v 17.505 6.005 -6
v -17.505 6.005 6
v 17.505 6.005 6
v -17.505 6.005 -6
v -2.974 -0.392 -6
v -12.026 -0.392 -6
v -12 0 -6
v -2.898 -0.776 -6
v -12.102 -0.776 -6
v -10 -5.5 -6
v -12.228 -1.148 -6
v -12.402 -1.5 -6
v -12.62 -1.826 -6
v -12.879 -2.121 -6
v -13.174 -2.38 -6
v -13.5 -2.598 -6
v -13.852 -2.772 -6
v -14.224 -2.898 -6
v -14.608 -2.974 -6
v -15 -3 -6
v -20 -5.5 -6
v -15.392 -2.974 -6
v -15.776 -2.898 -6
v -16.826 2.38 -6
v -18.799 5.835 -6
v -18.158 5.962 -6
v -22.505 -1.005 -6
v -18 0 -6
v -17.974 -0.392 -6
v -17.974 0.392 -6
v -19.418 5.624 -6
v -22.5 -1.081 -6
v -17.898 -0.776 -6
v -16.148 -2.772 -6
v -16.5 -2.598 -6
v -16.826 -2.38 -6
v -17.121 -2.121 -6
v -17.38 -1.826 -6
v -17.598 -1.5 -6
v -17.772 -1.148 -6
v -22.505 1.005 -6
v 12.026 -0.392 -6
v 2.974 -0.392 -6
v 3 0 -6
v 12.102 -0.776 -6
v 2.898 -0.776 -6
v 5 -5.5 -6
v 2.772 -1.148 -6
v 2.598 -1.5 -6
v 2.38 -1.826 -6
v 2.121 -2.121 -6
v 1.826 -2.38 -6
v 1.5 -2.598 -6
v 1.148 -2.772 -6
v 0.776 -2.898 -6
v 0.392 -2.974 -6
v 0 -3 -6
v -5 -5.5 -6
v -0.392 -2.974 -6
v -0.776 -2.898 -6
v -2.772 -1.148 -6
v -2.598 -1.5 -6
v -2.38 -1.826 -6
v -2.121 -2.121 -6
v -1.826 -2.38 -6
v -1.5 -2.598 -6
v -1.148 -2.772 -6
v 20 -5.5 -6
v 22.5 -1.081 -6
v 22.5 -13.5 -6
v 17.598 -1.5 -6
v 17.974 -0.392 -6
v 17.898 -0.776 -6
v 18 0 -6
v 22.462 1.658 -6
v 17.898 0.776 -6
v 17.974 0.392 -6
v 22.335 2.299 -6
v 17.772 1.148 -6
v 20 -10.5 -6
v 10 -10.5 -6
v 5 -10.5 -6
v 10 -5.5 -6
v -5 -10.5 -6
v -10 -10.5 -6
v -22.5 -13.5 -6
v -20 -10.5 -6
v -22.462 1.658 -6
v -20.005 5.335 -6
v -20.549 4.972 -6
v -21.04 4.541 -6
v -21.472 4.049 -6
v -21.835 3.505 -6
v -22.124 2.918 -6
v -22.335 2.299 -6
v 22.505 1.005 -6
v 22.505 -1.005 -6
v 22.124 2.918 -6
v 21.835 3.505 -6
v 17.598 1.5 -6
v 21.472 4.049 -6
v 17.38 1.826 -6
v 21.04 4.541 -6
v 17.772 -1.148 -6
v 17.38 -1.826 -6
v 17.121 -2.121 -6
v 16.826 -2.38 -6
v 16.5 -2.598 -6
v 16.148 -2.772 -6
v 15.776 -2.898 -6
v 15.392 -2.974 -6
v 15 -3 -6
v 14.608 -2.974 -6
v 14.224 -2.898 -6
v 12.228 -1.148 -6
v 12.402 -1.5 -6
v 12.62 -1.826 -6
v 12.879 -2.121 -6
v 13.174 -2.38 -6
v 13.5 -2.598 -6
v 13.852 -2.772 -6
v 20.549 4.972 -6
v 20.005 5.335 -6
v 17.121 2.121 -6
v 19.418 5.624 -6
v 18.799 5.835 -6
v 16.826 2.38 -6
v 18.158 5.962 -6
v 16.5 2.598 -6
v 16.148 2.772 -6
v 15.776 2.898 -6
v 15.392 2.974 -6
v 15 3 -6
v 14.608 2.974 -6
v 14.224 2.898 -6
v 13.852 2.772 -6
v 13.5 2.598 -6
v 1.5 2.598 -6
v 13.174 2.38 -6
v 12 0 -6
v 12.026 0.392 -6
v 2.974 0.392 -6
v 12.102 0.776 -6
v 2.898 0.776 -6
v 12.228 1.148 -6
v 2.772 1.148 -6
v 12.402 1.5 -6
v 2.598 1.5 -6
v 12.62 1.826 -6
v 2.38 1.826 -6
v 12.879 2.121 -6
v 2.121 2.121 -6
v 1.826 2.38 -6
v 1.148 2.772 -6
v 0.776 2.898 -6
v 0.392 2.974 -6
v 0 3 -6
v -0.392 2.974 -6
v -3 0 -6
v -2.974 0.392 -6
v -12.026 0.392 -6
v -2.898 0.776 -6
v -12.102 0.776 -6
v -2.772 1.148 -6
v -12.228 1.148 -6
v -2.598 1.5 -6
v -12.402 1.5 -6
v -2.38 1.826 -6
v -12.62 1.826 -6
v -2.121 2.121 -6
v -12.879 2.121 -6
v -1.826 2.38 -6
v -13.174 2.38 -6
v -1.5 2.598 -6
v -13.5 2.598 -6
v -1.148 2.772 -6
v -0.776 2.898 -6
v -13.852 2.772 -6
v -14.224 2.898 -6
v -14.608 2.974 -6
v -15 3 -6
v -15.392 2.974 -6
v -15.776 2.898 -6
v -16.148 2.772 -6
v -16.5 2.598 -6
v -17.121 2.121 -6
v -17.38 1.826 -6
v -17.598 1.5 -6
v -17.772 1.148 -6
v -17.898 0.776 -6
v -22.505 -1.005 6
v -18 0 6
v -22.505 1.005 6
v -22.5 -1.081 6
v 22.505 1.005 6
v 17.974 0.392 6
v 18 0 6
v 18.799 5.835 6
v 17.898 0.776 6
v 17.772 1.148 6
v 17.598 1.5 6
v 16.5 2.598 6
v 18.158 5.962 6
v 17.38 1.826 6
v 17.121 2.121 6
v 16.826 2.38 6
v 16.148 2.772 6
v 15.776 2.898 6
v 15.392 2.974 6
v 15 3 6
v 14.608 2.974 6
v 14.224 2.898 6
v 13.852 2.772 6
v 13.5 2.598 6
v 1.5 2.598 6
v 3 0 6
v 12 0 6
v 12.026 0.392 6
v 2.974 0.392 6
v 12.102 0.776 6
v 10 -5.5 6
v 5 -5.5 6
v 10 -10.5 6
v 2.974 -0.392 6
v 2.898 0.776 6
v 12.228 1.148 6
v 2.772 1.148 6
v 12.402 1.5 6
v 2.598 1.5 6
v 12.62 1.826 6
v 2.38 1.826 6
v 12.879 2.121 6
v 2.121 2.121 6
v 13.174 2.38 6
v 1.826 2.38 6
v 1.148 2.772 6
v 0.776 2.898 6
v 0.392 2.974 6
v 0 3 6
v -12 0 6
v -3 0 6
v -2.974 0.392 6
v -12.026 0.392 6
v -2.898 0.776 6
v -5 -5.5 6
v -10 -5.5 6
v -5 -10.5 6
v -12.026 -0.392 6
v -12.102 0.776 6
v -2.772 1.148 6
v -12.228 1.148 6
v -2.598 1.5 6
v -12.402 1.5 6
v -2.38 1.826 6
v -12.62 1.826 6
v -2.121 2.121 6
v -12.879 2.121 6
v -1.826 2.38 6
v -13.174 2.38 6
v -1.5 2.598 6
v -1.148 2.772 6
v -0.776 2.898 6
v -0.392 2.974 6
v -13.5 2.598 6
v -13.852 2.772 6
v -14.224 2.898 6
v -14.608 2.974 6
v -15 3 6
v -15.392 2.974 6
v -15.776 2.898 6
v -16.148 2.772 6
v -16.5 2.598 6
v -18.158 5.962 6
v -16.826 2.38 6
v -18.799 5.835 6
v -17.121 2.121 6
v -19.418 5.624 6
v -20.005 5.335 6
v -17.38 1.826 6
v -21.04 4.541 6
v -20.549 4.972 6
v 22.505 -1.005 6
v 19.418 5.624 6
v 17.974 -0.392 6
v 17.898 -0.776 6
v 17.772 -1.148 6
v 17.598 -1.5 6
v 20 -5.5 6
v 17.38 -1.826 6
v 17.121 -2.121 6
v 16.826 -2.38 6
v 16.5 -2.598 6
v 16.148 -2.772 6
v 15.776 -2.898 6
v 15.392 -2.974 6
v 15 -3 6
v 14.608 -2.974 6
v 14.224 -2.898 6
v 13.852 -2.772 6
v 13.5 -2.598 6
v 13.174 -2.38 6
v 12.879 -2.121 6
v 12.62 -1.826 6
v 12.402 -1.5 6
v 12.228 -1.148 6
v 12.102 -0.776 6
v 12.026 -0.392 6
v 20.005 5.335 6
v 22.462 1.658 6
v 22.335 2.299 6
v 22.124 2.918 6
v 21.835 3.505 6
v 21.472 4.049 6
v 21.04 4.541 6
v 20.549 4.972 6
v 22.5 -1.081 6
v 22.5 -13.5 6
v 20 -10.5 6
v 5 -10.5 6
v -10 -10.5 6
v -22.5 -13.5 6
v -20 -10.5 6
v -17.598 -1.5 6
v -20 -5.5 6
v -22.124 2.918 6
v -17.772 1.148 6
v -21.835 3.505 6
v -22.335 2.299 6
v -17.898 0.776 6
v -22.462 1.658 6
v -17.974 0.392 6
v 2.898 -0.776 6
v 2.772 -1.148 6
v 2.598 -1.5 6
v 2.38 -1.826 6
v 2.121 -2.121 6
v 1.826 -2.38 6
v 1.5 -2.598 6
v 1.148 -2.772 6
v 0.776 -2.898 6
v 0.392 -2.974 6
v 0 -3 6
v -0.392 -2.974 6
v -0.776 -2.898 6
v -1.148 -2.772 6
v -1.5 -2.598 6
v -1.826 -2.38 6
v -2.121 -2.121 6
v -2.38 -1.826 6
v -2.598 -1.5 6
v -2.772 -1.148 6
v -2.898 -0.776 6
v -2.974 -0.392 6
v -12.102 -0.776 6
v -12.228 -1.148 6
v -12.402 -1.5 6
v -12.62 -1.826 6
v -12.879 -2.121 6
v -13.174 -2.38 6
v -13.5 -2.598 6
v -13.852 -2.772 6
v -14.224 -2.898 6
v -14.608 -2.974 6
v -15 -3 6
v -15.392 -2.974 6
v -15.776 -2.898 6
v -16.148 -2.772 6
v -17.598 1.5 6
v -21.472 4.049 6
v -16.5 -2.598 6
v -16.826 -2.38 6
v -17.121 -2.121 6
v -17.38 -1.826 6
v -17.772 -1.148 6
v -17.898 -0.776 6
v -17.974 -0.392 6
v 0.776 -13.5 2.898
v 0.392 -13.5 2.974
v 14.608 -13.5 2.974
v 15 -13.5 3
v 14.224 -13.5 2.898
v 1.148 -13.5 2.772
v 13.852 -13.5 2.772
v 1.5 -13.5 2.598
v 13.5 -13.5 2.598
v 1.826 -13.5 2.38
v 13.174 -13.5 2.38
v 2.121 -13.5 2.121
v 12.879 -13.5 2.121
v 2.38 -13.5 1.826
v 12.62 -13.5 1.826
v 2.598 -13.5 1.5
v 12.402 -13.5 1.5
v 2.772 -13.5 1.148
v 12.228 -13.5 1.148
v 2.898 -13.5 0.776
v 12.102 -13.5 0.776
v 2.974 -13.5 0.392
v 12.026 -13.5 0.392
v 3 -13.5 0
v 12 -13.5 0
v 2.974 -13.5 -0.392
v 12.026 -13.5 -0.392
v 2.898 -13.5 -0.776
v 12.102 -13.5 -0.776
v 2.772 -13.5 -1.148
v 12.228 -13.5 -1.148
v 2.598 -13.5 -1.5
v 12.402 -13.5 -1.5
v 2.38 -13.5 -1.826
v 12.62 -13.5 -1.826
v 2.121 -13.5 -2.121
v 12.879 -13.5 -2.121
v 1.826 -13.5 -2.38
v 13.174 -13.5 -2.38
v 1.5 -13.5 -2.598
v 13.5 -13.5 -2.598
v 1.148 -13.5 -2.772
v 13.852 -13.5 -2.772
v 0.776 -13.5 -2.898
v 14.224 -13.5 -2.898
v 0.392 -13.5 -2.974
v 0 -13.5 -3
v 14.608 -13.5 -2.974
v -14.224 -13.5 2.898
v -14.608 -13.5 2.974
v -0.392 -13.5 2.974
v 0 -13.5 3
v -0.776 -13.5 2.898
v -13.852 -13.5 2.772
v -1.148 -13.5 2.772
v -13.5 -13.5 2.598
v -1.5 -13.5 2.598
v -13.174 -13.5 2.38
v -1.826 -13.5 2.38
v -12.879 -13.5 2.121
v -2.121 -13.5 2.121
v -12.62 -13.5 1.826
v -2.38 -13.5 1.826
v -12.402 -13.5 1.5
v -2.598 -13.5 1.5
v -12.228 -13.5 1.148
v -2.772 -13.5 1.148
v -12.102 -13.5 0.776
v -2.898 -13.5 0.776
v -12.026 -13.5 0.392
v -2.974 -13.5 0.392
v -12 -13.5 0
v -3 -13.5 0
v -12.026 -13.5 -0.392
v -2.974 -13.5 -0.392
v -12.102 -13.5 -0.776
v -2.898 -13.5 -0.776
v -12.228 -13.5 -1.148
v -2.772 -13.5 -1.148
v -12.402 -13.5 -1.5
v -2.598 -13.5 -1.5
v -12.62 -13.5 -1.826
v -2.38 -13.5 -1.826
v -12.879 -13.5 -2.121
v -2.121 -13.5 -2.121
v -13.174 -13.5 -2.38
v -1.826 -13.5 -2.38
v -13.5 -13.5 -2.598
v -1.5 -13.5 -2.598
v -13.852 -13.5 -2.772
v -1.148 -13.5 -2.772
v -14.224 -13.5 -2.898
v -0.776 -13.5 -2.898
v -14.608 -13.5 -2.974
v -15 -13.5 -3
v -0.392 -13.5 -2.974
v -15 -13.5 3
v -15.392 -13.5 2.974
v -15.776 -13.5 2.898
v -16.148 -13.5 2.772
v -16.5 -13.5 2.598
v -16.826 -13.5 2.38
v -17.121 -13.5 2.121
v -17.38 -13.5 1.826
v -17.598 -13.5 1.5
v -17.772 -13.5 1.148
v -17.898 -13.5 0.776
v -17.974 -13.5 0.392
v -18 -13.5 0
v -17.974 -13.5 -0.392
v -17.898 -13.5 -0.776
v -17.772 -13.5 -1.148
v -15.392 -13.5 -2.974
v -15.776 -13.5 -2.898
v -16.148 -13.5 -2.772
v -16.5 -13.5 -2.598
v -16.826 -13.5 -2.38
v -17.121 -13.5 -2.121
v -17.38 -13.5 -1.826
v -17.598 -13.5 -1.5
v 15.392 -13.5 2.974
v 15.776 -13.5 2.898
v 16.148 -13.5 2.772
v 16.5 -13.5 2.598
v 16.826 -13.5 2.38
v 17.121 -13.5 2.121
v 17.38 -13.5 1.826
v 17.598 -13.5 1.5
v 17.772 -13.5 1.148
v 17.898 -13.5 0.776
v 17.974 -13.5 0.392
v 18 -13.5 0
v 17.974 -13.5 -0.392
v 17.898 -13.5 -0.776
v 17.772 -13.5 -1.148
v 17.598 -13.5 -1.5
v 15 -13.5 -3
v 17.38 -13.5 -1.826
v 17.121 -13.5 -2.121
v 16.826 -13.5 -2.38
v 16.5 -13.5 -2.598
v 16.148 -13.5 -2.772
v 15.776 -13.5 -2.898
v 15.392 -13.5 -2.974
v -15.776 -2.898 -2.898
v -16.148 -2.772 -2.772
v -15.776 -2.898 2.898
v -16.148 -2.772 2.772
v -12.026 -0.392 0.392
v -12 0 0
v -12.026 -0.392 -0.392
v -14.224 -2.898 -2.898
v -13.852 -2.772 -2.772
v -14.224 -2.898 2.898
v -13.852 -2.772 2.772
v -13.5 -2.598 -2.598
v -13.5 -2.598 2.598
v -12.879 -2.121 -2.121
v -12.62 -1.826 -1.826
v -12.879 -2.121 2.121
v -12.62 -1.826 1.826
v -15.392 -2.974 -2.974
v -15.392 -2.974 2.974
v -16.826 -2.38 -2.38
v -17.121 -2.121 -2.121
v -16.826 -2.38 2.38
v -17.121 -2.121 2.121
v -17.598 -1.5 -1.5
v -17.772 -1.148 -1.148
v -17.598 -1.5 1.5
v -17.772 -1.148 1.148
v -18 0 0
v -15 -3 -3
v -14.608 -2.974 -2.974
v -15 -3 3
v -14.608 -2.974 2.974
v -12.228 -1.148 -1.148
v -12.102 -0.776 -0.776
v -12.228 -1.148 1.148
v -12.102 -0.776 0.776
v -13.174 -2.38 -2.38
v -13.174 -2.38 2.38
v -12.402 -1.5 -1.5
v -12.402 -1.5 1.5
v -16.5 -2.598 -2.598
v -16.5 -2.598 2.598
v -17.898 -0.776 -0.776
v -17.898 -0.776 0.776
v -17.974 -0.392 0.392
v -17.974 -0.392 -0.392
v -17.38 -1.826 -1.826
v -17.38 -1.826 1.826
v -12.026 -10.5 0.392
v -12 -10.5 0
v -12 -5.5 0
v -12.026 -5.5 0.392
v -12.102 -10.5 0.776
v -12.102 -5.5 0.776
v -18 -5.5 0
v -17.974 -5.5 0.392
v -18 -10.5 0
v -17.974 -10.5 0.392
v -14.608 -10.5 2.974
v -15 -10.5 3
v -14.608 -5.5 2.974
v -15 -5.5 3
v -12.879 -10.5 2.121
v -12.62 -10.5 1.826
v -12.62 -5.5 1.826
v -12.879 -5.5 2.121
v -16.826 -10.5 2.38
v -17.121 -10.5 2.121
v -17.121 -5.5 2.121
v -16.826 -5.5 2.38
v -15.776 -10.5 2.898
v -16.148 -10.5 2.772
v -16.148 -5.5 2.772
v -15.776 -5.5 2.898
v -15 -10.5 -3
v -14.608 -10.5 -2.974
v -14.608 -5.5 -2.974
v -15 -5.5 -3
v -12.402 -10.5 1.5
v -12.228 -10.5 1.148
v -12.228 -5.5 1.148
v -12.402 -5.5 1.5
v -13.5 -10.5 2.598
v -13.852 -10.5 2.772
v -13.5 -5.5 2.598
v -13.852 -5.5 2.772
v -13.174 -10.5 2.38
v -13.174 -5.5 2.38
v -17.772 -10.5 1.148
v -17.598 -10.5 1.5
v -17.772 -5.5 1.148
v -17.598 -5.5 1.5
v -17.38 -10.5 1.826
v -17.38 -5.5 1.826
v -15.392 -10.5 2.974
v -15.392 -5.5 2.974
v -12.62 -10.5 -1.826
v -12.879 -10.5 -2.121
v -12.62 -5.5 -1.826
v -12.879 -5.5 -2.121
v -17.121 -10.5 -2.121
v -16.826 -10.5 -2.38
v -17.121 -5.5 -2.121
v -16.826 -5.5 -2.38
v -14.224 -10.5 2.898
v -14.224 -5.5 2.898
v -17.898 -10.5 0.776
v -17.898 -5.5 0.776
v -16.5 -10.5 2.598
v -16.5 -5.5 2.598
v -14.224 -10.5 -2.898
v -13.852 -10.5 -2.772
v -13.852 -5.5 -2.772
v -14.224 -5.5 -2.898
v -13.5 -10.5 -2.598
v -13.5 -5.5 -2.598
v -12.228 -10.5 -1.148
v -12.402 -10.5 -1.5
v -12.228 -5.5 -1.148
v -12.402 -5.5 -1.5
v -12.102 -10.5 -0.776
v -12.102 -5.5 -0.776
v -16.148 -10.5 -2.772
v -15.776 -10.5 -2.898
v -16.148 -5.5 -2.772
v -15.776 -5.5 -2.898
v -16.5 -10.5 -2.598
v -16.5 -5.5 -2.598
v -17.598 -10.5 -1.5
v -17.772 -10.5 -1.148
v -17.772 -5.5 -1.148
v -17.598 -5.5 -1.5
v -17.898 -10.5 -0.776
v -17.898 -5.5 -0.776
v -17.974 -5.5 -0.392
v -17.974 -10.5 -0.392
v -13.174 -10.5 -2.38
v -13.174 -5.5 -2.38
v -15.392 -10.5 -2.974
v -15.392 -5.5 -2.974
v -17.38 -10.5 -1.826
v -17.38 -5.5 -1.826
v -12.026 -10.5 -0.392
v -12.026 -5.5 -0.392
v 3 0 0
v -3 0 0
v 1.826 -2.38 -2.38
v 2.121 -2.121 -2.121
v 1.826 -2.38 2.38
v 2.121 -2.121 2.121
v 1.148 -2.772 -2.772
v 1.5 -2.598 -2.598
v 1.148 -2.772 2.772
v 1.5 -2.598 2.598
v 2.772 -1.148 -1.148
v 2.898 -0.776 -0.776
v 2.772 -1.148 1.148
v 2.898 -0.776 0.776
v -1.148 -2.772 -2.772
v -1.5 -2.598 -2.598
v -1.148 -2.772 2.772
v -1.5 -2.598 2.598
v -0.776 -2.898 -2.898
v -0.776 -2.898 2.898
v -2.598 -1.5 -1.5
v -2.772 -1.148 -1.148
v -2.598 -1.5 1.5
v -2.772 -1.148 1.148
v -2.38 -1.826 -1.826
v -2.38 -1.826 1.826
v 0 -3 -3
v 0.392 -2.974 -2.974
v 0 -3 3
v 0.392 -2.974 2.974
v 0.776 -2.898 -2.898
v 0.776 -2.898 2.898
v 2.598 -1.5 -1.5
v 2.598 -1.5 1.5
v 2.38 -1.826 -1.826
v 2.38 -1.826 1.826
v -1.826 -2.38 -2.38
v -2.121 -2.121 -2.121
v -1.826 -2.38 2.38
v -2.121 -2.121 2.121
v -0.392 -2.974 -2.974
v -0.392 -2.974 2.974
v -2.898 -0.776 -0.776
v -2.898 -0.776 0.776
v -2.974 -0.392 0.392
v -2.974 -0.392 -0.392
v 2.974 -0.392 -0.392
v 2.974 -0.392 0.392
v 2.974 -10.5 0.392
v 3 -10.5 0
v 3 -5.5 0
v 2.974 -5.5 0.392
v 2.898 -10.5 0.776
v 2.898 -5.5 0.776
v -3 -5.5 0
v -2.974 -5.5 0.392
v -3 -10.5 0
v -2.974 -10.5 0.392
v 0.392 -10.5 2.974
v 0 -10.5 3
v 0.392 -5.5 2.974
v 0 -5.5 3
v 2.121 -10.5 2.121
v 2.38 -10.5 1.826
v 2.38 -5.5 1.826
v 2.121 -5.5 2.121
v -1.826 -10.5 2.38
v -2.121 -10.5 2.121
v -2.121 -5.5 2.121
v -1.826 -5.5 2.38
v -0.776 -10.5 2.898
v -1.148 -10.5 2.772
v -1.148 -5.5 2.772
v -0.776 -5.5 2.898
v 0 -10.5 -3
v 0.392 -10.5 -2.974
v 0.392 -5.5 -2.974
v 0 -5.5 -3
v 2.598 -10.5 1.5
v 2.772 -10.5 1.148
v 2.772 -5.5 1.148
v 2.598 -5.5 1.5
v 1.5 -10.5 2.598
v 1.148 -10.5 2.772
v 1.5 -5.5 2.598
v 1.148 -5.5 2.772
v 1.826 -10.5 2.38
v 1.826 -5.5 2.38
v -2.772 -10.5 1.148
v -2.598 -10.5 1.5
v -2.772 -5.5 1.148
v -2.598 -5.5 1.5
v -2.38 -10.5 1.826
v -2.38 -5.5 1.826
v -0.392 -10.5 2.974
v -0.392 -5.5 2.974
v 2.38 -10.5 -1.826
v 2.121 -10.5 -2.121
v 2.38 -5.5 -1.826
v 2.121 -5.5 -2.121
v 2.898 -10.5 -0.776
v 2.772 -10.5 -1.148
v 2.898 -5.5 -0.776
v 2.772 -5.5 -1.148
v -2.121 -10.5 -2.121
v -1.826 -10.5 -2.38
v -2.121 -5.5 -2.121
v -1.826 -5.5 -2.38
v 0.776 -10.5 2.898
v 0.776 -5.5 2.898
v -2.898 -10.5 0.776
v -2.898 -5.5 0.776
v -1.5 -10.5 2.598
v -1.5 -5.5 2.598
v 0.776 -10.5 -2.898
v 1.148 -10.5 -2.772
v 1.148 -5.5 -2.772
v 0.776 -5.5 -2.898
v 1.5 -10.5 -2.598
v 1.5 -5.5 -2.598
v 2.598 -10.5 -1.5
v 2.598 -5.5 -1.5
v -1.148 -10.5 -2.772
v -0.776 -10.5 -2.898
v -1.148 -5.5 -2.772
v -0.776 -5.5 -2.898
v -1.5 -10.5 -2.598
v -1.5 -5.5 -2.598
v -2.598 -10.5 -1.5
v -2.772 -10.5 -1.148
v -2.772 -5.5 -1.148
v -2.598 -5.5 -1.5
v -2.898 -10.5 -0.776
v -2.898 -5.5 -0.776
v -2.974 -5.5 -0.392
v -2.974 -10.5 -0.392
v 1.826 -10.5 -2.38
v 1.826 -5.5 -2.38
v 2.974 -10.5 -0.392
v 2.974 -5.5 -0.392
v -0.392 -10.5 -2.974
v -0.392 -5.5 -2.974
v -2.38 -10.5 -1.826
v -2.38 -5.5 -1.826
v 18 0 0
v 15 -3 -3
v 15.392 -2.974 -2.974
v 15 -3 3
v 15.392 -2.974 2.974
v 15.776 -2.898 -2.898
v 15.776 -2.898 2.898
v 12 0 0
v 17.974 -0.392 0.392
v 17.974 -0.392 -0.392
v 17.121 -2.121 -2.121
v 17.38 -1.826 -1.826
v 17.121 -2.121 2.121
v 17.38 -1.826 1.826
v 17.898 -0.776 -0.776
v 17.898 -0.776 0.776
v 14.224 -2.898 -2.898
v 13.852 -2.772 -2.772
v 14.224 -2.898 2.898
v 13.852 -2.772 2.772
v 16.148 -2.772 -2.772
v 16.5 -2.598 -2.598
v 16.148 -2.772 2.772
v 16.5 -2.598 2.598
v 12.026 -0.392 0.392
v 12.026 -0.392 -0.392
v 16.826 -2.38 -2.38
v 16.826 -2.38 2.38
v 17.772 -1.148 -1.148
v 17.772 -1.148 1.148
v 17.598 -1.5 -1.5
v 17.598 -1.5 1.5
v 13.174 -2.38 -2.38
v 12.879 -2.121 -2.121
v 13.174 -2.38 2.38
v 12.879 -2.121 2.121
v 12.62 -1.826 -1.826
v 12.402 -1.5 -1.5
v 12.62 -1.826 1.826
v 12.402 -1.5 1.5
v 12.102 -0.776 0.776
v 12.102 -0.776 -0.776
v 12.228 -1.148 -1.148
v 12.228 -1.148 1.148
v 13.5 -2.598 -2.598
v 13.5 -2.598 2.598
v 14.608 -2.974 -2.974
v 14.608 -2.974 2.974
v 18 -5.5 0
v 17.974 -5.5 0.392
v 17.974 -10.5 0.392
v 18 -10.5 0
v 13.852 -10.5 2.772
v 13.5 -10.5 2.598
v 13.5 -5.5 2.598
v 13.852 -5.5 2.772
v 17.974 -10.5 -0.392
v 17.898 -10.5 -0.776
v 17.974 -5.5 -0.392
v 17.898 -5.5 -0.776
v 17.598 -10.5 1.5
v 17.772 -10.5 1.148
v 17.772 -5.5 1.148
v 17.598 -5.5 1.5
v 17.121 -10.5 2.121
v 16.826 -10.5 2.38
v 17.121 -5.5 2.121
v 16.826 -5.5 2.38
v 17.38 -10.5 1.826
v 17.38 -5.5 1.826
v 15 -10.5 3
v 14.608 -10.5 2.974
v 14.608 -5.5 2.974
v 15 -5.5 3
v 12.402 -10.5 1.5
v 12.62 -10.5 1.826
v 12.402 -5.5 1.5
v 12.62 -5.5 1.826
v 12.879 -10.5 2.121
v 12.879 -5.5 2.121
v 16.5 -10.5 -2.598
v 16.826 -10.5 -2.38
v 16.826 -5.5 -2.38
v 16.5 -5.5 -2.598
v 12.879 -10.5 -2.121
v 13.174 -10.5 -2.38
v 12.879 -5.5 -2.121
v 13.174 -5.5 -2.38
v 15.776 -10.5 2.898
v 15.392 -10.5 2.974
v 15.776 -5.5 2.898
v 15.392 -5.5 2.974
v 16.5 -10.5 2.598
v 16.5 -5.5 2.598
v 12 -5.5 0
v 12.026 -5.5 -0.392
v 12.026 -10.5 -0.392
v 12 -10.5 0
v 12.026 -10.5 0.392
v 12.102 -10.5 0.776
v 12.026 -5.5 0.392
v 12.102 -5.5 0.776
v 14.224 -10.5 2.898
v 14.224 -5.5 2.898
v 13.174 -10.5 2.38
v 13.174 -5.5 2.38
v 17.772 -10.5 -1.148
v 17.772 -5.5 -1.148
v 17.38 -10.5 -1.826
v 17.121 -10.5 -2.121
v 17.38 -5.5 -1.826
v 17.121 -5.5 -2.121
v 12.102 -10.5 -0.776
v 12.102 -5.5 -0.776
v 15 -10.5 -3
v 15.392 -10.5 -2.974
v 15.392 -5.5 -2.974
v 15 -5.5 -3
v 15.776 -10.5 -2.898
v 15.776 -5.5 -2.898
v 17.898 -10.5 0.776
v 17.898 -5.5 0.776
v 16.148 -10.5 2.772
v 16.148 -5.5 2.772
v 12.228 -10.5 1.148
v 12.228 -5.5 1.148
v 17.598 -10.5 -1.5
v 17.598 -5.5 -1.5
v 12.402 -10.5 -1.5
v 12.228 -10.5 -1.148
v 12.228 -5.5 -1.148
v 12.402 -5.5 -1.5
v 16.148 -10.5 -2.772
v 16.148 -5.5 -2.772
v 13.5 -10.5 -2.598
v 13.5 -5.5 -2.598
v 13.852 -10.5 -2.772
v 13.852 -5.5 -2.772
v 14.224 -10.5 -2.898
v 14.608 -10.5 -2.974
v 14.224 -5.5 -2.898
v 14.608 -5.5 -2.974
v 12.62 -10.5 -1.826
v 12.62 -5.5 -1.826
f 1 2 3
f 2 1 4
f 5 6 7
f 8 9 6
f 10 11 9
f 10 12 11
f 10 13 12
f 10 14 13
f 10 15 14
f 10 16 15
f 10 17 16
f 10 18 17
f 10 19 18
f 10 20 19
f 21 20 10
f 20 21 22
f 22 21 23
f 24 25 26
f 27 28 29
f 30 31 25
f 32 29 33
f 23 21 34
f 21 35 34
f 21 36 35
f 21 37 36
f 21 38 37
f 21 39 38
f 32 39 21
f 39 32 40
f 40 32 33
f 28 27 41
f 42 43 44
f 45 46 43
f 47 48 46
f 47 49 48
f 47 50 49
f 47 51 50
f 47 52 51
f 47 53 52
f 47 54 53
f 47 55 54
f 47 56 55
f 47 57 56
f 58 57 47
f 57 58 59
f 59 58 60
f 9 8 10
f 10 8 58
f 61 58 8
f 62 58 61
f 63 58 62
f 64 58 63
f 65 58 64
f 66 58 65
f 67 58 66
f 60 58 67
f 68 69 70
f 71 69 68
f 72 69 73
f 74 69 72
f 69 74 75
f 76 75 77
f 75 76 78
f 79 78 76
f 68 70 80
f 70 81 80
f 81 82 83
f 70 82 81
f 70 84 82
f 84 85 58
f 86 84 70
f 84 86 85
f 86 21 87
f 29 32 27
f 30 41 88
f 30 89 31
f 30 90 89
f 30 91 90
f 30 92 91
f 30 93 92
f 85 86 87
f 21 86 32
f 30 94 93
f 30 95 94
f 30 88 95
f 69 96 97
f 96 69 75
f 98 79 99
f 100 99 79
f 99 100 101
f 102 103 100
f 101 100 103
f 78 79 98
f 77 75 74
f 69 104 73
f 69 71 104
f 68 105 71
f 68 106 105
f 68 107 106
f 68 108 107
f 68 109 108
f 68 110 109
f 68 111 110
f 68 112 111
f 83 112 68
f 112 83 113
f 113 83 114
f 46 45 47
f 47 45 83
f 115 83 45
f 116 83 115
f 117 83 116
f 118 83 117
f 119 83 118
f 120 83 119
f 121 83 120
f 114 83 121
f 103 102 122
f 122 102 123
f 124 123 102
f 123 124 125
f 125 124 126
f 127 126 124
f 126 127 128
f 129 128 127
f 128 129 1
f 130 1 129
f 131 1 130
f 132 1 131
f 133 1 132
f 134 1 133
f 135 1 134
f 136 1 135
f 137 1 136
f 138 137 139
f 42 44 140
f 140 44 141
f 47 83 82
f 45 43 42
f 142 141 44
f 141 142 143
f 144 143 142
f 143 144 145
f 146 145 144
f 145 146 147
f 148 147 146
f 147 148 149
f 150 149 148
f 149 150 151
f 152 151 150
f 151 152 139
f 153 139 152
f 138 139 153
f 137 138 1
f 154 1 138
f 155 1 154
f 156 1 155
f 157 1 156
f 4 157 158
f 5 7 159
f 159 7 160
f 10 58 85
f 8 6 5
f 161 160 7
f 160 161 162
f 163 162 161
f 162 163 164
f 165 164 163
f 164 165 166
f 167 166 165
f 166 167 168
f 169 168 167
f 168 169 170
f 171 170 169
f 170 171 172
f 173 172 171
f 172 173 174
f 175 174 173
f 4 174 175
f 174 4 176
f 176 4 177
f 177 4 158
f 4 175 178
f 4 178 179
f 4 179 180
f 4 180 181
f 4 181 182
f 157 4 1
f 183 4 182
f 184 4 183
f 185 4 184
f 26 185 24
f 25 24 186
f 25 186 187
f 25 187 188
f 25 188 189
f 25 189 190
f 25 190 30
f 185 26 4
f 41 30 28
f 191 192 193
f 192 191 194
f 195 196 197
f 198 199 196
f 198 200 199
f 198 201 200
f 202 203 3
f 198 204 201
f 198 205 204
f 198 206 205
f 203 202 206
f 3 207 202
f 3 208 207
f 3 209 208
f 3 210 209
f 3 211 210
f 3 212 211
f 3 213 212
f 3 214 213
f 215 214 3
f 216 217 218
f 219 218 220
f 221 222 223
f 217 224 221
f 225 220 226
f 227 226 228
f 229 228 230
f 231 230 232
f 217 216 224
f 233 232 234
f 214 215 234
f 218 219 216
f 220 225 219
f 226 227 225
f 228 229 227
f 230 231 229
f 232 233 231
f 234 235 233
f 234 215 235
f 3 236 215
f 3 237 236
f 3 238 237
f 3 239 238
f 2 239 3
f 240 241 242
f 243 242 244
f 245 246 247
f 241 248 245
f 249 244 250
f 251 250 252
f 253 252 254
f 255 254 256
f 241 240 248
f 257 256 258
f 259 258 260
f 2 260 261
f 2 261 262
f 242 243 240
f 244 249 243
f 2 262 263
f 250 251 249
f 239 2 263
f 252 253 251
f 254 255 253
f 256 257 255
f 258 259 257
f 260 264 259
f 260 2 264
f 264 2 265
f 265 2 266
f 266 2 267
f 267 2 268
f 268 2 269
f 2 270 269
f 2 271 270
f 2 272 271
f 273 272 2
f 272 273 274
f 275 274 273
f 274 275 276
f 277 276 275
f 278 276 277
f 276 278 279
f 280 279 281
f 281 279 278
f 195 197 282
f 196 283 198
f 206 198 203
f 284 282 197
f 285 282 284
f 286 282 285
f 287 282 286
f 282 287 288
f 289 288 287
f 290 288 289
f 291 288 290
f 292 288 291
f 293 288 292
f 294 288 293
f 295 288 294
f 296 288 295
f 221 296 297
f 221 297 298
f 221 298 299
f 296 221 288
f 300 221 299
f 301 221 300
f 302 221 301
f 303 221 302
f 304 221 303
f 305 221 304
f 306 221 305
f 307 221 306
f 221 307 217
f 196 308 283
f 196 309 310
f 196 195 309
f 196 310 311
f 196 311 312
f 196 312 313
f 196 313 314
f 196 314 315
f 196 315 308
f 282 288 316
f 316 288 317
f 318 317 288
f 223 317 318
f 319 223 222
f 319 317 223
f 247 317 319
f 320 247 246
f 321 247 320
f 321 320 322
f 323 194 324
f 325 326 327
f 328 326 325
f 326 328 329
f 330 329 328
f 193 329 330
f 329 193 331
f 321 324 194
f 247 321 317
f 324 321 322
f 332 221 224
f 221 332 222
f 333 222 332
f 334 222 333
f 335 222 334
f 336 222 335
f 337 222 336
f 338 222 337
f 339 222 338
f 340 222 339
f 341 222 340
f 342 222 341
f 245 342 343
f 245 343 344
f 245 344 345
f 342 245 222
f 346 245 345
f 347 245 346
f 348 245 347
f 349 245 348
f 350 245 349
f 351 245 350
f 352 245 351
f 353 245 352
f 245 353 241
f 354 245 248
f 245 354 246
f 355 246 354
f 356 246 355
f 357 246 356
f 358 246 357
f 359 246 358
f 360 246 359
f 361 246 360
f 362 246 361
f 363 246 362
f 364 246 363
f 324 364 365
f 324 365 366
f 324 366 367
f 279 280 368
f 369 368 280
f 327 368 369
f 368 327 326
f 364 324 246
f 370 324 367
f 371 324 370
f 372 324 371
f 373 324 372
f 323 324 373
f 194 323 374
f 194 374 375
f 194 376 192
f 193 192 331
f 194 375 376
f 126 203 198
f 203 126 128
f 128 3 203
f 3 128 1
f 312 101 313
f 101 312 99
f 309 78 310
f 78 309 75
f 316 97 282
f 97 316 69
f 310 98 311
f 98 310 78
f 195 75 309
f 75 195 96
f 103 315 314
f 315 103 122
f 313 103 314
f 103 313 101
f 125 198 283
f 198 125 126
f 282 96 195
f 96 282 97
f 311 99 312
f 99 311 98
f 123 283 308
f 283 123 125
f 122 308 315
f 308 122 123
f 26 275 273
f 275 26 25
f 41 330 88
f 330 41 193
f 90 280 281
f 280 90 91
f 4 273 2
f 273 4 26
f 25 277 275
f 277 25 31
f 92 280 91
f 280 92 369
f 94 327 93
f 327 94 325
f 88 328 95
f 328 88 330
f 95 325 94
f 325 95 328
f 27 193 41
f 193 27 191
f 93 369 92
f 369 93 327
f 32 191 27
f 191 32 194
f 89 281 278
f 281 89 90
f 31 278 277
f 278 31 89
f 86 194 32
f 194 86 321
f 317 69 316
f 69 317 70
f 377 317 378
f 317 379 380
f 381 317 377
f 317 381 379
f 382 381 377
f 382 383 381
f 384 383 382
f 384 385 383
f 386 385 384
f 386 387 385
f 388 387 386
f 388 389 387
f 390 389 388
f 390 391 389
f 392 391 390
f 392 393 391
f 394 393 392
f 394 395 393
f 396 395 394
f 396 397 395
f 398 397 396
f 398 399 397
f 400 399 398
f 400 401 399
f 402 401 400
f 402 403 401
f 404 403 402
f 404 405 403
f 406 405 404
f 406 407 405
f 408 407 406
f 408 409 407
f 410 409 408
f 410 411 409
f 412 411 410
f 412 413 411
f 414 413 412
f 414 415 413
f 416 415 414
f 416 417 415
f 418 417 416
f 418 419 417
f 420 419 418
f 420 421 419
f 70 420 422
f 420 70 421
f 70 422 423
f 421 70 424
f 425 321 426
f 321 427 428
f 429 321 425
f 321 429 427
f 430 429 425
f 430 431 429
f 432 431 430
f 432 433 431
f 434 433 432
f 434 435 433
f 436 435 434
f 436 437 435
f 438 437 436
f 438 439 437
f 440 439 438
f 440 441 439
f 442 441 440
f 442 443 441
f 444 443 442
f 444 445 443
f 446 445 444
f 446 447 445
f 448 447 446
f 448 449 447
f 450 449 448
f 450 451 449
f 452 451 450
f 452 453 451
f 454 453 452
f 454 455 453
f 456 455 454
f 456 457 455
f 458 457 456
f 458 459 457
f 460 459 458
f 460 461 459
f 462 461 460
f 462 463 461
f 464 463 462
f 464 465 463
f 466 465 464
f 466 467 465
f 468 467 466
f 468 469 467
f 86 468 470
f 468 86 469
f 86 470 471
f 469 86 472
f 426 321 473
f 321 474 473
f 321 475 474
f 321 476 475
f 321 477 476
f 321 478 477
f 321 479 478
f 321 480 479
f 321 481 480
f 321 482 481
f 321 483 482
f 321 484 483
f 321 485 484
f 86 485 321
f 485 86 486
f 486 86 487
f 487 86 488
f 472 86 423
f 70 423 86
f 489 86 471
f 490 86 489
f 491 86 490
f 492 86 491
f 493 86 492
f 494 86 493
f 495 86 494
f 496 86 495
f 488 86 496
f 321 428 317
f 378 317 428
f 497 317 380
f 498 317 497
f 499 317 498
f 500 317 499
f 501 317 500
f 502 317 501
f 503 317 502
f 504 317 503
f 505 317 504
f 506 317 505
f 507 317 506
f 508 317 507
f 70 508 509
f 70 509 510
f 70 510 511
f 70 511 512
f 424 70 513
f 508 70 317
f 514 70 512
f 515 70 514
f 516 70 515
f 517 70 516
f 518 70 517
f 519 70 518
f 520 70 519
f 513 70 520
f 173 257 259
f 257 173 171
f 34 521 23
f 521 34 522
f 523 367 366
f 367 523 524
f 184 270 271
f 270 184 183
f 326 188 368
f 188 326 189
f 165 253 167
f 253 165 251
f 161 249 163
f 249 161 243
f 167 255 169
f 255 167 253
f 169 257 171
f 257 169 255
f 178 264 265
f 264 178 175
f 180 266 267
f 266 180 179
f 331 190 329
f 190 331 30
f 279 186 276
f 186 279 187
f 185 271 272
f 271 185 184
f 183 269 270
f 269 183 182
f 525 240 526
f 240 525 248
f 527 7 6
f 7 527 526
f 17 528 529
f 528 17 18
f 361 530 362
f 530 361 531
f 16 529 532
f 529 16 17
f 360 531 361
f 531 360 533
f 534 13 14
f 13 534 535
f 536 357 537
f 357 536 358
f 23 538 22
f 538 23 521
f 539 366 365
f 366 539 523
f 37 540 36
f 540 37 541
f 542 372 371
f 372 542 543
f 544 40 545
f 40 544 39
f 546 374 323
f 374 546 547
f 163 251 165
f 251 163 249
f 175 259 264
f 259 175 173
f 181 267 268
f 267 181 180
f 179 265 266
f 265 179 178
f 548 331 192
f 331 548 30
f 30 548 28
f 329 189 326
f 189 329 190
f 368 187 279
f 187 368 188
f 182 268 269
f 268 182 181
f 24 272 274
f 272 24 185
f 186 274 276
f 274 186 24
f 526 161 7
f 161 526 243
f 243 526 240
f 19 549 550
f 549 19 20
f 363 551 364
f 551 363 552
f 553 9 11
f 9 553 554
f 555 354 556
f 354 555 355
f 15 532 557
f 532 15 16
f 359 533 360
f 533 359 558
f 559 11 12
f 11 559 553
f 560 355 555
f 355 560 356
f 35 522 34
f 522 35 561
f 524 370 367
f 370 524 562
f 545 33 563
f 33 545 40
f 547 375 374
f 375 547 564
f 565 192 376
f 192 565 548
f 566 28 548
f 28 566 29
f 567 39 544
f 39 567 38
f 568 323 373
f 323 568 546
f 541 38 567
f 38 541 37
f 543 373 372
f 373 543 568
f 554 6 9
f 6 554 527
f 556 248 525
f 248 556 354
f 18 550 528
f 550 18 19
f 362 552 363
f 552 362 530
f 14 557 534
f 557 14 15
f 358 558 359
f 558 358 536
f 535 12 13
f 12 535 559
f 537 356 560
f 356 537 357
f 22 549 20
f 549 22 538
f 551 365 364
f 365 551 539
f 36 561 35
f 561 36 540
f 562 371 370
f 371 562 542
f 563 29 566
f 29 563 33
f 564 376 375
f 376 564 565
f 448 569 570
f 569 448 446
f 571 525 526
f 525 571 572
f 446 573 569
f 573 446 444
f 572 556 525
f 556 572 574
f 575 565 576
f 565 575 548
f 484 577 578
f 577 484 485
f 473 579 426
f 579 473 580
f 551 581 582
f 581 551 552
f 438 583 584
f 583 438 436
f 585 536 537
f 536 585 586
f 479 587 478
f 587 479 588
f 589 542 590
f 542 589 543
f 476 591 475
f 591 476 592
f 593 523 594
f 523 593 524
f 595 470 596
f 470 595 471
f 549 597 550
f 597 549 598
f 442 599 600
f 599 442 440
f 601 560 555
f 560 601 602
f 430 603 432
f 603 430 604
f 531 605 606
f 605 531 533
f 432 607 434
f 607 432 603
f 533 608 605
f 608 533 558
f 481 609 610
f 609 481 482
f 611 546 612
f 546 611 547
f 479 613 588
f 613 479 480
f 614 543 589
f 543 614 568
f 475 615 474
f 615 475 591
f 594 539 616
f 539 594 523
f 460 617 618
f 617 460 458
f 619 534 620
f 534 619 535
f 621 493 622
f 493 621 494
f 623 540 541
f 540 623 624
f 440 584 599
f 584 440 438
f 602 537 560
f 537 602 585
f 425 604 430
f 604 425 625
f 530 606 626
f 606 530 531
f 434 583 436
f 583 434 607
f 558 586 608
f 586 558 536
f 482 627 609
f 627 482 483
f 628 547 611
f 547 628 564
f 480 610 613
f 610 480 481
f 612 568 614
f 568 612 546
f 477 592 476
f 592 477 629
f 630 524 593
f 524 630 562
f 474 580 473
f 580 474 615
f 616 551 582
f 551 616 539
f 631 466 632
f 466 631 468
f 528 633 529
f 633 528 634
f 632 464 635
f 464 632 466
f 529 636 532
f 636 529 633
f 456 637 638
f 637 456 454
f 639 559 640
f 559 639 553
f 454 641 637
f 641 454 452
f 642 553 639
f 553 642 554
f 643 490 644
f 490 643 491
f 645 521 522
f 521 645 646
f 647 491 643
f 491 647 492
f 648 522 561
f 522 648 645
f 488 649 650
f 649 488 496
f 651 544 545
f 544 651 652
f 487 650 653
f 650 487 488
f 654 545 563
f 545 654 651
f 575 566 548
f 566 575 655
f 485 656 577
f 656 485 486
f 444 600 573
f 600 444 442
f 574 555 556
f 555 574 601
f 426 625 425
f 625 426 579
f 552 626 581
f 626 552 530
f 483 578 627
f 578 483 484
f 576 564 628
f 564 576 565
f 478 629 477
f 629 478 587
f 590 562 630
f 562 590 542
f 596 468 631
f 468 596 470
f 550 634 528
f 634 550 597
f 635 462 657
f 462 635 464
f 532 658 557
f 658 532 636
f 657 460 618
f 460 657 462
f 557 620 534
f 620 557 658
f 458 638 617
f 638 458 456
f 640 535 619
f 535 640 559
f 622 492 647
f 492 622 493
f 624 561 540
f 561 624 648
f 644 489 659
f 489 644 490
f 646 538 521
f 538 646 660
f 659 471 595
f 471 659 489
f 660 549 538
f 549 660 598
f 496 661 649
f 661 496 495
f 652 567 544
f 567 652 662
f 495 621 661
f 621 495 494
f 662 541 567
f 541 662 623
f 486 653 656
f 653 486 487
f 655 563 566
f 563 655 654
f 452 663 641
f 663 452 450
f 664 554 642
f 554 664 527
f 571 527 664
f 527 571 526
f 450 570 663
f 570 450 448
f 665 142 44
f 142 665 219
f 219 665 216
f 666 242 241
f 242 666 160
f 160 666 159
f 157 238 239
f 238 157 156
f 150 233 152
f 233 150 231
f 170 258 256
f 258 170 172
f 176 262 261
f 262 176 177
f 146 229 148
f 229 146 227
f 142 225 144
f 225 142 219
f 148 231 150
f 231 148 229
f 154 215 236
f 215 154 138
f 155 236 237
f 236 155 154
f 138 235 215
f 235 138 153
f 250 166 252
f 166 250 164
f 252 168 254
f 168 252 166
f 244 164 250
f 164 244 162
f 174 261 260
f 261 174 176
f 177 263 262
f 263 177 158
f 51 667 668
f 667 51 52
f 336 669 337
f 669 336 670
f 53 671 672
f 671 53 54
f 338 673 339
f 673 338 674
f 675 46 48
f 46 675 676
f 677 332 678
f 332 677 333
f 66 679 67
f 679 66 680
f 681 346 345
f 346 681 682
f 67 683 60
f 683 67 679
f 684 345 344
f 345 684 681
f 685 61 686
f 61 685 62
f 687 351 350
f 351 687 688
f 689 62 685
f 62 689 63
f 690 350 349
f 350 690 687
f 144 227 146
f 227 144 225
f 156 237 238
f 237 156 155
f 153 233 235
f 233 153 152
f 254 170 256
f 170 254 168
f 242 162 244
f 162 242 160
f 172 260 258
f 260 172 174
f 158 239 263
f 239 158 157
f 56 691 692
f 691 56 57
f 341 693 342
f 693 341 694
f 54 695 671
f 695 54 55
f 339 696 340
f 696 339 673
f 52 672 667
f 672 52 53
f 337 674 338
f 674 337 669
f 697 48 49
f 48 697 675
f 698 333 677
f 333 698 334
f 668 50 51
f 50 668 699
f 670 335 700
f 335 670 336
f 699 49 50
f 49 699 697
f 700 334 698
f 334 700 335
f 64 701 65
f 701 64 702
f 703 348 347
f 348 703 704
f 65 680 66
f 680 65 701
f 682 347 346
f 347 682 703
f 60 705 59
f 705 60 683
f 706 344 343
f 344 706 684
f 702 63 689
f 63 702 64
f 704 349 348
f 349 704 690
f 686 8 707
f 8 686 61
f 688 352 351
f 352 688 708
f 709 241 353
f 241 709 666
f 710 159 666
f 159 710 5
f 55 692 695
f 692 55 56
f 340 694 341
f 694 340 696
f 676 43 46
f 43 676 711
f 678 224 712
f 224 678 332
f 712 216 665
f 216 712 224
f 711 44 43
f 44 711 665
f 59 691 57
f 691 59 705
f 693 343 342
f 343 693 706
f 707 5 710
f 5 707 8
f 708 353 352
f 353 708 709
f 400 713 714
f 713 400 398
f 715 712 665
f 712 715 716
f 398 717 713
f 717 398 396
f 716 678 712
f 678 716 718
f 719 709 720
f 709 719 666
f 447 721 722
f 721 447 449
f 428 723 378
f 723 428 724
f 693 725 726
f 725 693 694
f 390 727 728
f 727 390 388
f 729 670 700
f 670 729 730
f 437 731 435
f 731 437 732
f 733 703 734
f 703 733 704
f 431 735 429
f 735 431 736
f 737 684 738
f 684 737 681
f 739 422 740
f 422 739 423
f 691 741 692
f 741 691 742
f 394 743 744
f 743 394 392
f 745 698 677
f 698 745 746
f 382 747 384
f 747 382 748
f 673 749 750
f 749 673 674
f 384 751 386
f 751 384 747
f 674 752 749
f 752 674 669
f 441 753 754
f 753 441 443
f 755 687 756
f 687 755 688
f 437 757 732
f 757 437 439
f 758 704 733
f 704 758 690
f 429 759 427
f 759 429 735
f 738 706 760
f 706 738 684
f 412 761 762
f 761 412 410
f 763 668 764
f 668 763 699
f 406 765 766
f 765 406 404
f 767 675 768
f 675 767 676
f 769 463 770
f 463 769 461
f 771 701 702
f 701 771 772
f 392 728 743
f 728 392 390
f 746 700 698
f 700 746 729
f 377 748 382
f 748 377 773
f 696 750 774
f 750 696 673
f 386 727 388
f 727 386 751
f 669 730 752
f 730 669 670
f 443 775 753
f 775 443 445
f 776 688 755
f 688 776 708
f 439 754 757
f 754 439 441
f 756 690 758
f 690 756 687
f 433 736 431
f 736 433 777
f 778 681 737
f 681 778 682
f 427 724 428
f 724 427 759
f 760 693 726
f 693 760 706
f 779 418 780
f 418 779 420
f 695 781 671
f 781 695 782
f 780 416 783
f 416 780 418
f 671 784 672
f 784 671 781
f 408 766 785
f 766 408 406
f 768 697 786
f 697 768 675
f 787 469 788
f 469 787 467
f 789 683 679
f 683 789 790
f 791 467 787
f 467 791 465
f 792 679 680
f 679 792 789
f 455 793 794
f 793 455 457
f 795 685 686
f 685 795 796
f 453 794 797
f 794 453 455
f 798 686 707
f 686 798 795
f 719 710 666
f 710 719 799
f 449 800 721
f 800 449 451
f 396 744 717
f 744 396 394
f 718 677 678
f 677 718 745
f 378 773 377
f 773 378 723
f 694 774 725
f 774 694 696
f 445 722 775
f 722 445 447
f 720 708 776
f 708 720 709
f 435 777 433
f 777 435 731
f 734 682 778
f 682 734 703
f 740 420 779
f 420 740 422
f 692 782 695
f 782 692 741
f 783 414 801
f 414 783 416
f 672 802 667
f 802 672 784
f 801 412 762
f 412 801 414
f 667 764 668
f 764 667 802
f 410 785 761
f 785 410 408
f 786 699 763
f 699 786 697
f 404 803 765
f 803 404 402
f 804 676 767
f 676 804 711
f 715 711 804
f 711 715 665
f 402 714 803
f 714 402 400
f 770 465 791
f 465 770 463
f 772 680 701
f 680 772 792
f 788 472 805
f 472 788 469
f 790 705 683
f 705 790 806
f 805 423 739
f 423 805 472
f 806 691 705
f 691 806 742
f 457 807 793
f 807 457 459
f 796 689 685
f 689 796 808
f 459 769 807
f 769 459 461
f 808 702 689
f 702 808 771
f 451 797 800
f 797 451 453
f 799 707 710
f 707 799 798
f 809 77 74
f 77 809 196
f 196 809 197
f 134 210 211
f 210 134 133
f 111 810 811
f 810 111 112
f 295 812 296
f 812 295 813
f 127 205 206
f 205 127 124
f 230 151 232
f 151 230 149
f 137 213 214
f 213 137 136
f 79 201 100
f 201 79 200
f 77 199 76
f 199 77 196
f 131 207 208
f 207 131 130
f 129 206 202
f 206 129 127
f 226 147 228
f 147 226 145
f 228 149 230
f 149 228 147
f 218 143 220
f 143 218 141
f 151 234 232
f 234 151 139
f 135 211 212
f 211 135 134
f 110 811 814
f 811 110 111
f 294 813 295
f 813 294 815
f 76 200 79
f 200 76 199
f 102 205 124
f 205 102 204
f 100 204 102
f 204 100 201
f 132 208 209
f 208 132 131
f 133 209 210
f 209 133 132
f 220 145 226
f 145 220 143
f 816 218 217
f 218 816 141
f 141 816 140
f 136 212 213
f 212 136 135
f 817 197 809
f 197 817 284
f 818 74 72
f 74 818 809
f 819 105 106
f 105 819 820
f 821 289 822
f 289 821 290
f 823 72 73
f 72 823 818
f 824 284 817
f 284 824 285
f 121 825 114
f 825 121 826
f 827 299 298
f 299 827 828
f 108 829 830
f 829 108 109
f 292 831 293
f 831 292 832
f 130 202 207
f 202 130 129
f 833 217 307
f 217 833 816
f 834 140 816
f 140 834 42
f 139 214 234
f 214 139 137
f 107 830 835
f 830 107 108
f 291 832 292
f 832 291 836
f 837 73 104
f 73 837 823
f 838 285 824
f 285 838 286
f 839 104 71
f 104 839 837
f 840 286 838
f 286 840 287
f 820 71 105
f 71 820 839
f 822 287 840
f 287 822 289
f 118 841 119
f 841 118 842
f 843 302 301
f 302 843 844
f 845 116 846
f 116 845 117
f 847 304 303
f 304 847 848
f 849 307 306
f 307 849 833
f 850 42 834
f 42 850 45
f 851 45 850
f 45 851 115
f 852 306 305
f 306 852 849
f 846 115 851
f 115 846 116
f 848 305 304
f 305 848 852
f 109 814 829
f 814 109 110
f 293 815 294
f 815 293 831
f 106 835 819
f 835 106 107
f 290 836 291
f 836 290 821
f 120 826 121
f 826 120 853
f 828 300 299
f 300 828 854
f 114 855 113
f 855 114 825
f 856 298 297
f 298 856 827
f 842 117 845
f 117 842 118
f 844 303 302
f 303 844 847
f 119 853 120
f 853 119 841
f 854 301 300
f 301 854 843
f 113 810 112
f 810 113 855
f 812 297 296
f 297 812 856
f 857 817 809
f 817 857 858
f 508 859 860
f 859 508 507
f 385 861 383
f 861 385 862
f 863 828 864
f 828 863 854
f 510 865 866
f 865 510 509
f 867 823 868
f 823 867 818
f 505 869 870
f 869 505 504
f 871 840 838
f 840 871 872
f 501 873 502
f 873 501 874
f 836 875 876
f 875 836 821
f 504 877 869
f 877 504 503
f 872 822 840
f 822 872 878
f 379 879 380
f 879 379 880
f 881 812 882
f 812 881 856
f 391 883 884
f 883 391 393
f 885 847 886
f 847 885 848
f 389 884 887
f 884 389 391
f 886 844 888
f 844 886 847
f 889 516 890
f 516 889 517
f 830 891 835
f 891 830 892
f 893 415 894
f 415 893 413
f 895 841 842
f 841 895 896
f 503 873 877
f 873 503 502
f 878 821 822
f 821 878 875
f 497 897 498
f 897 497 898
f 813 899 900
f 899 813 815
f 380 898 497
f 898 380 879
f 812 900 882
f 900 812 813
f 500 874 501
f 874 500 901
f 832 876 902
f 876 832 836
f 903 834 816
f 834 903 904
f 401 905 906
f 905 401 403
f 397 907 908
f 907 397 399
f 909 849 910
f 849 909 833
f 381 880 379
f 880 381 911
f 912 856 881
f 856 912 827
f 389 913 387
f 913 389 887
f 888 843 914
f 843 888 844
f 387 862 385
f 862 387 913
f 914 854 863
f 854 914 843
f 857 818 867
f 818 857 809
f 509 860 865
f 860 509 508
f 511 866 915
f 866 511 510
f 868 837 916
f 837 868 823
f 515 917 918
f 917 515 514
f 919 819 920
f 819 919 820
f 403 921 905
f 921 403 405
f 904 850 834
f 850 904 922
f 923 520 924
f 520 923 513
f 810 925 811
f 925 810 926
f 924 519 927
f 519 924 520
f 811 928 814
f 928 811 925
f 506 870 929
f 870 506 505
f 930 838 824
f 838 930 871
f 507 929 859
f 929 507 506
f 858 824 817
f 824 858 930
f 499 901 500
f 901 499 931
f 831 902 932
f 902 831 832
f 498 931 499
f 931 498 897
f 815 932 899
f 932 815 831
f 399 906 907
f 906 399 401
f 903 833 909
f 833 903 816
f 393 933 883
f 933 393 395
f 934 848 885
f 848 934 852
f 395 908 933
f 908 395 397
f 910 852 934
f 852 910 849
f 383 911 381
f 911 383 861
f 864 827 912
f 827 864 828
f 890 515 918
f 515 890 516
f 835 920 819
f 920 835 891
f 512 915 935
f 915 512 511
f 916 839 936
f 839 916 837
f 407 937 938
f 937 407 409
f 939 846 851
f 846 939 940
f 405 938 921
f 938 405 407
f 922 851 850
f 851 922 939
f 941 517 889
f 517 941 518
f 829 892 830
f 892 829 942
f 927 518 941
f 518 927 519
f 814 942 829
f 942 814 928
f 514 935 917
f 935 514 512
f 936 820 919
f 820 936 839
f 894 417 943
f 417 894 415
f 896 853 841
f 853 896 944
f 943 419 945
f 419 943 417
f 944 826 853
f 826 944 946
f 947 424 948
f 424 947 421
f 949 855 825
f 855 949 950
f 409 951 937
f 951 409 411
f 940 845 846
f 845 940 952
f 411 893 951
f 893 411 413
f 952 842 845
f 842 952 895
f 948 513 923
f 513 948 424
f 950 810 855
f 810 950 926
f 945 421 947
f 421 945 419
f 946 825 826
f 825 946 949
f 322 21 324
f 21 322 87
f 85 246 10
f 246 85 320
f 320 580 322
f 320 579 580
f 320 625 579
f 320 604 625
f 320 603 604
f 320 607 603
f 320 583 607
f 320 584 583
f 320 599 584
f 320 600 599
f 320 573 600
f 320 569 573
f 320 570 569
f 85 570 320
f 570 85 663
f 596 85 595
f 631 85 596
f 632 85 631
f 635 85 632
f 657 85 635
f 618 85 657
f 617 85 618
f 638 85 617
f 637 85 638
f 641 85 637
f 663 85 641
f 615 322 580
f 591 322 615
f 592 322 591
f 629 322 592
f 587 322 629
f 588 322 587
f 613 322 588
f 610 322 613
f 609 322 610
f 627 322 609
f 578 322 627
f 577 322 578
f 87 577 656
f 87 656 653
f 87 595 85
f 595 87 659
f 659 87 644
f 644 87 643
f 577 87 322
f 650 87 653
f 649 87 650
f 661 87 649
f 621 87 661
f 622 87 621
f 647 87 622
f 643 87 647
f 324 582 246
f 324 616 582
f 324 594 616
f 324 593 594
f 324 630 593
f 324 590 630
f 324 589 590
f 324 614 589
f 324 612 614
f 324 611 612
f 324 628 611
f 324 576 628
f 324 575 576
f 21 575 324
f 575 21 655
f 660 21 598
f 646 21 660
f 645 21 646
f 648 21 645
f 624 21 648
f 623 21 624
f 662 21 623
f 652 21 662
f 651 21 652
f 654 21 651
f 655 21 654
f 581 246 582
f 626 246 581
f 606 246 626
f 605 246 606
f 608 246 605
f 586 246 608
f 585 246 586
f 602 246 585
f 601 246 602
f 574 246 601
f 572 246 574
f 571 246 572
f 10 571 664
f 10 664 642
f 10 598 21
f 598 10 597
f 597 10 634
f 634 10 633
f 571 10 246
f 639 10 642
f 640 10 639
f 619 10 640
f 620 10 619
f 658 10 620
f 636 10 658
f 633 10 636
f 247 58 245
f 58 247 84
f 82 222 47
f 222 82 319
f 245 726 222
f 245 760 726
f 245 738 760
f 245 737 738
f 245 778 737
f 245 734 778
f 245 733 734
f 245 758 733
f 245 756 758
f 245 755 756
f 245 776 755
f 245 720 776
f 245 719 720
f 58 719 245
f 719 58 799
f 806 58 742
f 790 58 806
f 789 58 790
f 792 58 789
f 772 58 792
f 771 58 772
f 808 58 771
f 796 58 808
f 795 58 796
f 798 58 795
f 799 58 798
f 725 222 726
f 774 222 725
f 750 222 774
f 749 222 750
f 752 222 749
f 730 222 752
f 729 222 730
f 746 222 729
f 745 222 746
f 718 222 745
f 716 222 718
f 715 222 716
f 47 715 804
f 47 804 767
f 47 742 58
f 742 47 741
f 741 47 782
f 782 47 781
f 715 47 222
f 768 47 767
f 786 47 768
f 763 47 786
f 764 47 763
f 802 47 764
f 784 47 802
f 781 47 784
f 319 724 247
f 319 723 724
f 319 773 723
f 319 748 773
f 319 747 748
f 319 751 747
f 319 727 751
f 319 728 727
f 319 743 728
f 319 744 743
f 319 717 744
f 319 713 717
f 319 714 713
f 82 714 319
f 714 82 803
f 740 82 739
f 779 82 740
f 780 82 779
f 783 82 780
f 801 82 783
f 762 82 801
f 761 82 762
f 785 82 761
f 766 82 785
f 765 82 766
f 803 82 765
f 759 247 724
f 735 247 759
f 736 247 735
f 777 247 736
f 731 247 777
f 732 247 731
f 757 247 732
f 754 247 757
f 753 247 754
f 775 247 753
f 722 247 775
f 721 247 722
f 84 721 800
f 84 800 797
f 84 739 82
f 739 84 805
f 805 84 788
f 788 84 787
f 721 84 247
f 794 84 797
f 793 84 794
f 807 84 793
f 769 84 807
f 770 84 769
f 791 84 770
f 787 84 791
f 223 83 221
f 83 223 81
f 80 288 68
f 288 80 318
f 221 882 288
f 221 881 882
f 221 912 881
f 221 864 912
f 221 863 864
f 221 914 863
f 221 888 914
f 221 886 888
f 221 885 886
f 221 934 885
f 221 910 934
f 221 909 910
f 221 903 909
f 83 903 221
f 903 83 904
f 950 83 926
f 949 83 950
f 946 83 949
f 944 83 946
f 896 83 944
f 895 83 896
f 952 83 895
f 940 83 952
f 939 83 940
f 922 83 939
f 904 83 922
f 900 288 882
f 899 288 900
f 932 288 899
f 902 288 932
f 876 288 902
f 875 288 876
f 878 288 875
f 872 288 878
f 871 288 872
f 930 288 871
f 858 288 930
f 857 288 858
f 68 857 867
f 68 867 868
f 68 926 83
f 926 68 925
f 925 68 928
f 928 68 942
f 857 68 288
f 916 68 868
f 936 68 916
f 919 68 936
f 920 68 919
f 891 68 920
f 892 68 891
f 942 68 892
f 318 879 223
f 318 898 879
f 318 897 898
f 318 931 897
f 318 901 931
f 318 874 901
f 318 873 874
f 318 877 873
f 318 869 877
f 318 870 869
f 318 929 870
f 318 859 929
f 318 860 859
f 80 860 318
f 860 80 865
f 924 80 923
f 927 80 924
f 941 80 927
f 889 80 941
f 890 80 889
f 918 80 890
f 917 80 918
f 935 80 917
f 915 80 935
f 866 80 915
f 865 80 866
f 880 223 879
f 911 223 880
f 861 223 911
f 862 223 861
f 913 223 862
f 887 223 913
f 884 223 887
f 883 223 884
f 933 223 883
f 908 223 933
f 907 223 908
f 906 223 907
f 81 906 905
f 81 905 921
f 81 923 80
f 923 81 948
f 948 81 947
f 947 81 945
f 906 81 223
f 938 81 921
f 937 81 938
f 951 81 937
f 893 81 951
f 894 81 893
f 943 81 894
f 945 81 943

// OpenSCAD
$fn = 48;


difference() {
	union() {
		color(alpha = 1.0000000000, c = "Gold") {
			translate(v = [0, 0, 6.0000000000]) {
				rotate(a = [0, 0, 0]) {
					translate(v = [0, 0, -12]) {
						linear_extrude(height = 12) {
							offset(r = 5) {
								square(center = true, size = [32.0100000000, 2.0100000000]);
							}
						}
					}
				}
			}
		}
		color(alpha = 1.0000000000, c = "Gold") {
			translate(v = [1.5000000000, 0, 6.0000000000]) {
				rotate(a = [0, 0, 0]) {
					translate(v = [0, 0, -12]) {
						linear_extrude(height = 12) {
							offset(r = 5) {
								square(center = true, size = [32.0100000000, 2.0100000000]);
							}
						}
					}
				}
			}
		}
		color(alpha = 1.0000000000, c = "Gold") {
			translate(v = [-1.5000000000, 0, 6.0000000000]) {
				rotate(a = [0, 0, 0]) {
					translate(v = [0, 0, -12]) {
						linear_extrude(height = 12) {
							offset(r = 5) {
								square(center = true, size = [32.0100000000, 2.0100000000]);
							}
						}
					}
				}
			}
		}
		color(alpha = 1.0000000000, c = "Gold") {
			translate(v = [0, -6.7500000000, 6.0000000000]) {
				rotate(a = [0, 0, 0]) {
					translate(v = [0, 0, -6.0000000000]) {
						cube(center = true, size = [45, 13.5000000000, 12]);
					}
				}
			}
		}
	}
	union() {
		color(alpha = 1.0000000000, c = "Gold") {
			translate(v = [-15.0000000000, 0.0000000000, 0]) {
				rotate(a = [0, 0, 0]) {
					translate(v = [0, 0, -250]) {
						cylinder(h = 500, r = 3.0000000000);
					}
				}
			}
		}
		color(alpha = 1.0000000000, c = "Gold") {
			translate(v = [-15.0000000000, 0.0000000000, 0]) {
				rotate(a = [90, 0, 0]) {
					cylinder(h = 13.5000000000, r = 3.0000000000);
				}
			}
		}
		color(alpha = 1.0000000000, c = "Gold") {
			translate(v = [0.0000000000, 0.0000000000, 0]) {
				rotate(a = [0, 0, 0]) {
					translate(v = [0, 0, -250]) {
						cylinder(h = 500, r = 3.0000000000);
					}
				}
			}
		}
		color(alpha = 1.0000000000, c = "Gold") {
			translate(v = [0.0000000000, 0.0000000000, 0]) {
				rotate(a = [90, 0, 0]) {
					cylinder(h = 13.5000000000, r = 3.0000000000);
				}
			}
		}
		color(alpha = 1.0000000000, c = "Gold") {
			translate(v = [15.0000000000, 0.0000000000, 0]) {
				rotate(a = [0, 0, 0]) {
					translate(v = [0, 0, -250]) {
						cylinder(h = 500, r = 3.0000000000);
					}
				}
			}
		}
		color(alpha = 1.0000000000, c = "Gold") {
			translate(v = [15.0000000000, 0.0000000000, 0]) {
				rotate(a = [90, 0, 0]) {
					cylinder(h = 13.5000000000, r = 3.0000000000);
				}
			}
		}
		color(alpha = 1.0000000000, c = "Gold") {
			translate(v = [-15.0000000000, -8, 6.0000000000]) {
				rotate(a = [0, 0, 0]) {
					translate(v = [0, 0, -6.0000000000]) {
						cube(center = true, size = [10, 5, 12]);
					}
				}
			}
		}
		color(alpha = 1.0000000000, c = "Gold") {
			translate(v = [0.0000000000, -8, 6.0000000000]) {
				rotate(a = [0, 0, 0]) {
					translate(v = [0, 0, -6.0000000000]) {
						cube(center = true, size = [10, 5, 12]);
					}
				}
			}
		}
		color(alpha = 1.0000000000, c = "Gold") {
			translate(v = [15.0000000000, -8, 6.0000000000]) {
				rotate(a = [0, 0, 0]) {
					translate(v = [0, 0, -6.0000000000]) {
						cube(center = true, size = [10, 5, 12]);
					}
				}
			}
		}
	}
}
